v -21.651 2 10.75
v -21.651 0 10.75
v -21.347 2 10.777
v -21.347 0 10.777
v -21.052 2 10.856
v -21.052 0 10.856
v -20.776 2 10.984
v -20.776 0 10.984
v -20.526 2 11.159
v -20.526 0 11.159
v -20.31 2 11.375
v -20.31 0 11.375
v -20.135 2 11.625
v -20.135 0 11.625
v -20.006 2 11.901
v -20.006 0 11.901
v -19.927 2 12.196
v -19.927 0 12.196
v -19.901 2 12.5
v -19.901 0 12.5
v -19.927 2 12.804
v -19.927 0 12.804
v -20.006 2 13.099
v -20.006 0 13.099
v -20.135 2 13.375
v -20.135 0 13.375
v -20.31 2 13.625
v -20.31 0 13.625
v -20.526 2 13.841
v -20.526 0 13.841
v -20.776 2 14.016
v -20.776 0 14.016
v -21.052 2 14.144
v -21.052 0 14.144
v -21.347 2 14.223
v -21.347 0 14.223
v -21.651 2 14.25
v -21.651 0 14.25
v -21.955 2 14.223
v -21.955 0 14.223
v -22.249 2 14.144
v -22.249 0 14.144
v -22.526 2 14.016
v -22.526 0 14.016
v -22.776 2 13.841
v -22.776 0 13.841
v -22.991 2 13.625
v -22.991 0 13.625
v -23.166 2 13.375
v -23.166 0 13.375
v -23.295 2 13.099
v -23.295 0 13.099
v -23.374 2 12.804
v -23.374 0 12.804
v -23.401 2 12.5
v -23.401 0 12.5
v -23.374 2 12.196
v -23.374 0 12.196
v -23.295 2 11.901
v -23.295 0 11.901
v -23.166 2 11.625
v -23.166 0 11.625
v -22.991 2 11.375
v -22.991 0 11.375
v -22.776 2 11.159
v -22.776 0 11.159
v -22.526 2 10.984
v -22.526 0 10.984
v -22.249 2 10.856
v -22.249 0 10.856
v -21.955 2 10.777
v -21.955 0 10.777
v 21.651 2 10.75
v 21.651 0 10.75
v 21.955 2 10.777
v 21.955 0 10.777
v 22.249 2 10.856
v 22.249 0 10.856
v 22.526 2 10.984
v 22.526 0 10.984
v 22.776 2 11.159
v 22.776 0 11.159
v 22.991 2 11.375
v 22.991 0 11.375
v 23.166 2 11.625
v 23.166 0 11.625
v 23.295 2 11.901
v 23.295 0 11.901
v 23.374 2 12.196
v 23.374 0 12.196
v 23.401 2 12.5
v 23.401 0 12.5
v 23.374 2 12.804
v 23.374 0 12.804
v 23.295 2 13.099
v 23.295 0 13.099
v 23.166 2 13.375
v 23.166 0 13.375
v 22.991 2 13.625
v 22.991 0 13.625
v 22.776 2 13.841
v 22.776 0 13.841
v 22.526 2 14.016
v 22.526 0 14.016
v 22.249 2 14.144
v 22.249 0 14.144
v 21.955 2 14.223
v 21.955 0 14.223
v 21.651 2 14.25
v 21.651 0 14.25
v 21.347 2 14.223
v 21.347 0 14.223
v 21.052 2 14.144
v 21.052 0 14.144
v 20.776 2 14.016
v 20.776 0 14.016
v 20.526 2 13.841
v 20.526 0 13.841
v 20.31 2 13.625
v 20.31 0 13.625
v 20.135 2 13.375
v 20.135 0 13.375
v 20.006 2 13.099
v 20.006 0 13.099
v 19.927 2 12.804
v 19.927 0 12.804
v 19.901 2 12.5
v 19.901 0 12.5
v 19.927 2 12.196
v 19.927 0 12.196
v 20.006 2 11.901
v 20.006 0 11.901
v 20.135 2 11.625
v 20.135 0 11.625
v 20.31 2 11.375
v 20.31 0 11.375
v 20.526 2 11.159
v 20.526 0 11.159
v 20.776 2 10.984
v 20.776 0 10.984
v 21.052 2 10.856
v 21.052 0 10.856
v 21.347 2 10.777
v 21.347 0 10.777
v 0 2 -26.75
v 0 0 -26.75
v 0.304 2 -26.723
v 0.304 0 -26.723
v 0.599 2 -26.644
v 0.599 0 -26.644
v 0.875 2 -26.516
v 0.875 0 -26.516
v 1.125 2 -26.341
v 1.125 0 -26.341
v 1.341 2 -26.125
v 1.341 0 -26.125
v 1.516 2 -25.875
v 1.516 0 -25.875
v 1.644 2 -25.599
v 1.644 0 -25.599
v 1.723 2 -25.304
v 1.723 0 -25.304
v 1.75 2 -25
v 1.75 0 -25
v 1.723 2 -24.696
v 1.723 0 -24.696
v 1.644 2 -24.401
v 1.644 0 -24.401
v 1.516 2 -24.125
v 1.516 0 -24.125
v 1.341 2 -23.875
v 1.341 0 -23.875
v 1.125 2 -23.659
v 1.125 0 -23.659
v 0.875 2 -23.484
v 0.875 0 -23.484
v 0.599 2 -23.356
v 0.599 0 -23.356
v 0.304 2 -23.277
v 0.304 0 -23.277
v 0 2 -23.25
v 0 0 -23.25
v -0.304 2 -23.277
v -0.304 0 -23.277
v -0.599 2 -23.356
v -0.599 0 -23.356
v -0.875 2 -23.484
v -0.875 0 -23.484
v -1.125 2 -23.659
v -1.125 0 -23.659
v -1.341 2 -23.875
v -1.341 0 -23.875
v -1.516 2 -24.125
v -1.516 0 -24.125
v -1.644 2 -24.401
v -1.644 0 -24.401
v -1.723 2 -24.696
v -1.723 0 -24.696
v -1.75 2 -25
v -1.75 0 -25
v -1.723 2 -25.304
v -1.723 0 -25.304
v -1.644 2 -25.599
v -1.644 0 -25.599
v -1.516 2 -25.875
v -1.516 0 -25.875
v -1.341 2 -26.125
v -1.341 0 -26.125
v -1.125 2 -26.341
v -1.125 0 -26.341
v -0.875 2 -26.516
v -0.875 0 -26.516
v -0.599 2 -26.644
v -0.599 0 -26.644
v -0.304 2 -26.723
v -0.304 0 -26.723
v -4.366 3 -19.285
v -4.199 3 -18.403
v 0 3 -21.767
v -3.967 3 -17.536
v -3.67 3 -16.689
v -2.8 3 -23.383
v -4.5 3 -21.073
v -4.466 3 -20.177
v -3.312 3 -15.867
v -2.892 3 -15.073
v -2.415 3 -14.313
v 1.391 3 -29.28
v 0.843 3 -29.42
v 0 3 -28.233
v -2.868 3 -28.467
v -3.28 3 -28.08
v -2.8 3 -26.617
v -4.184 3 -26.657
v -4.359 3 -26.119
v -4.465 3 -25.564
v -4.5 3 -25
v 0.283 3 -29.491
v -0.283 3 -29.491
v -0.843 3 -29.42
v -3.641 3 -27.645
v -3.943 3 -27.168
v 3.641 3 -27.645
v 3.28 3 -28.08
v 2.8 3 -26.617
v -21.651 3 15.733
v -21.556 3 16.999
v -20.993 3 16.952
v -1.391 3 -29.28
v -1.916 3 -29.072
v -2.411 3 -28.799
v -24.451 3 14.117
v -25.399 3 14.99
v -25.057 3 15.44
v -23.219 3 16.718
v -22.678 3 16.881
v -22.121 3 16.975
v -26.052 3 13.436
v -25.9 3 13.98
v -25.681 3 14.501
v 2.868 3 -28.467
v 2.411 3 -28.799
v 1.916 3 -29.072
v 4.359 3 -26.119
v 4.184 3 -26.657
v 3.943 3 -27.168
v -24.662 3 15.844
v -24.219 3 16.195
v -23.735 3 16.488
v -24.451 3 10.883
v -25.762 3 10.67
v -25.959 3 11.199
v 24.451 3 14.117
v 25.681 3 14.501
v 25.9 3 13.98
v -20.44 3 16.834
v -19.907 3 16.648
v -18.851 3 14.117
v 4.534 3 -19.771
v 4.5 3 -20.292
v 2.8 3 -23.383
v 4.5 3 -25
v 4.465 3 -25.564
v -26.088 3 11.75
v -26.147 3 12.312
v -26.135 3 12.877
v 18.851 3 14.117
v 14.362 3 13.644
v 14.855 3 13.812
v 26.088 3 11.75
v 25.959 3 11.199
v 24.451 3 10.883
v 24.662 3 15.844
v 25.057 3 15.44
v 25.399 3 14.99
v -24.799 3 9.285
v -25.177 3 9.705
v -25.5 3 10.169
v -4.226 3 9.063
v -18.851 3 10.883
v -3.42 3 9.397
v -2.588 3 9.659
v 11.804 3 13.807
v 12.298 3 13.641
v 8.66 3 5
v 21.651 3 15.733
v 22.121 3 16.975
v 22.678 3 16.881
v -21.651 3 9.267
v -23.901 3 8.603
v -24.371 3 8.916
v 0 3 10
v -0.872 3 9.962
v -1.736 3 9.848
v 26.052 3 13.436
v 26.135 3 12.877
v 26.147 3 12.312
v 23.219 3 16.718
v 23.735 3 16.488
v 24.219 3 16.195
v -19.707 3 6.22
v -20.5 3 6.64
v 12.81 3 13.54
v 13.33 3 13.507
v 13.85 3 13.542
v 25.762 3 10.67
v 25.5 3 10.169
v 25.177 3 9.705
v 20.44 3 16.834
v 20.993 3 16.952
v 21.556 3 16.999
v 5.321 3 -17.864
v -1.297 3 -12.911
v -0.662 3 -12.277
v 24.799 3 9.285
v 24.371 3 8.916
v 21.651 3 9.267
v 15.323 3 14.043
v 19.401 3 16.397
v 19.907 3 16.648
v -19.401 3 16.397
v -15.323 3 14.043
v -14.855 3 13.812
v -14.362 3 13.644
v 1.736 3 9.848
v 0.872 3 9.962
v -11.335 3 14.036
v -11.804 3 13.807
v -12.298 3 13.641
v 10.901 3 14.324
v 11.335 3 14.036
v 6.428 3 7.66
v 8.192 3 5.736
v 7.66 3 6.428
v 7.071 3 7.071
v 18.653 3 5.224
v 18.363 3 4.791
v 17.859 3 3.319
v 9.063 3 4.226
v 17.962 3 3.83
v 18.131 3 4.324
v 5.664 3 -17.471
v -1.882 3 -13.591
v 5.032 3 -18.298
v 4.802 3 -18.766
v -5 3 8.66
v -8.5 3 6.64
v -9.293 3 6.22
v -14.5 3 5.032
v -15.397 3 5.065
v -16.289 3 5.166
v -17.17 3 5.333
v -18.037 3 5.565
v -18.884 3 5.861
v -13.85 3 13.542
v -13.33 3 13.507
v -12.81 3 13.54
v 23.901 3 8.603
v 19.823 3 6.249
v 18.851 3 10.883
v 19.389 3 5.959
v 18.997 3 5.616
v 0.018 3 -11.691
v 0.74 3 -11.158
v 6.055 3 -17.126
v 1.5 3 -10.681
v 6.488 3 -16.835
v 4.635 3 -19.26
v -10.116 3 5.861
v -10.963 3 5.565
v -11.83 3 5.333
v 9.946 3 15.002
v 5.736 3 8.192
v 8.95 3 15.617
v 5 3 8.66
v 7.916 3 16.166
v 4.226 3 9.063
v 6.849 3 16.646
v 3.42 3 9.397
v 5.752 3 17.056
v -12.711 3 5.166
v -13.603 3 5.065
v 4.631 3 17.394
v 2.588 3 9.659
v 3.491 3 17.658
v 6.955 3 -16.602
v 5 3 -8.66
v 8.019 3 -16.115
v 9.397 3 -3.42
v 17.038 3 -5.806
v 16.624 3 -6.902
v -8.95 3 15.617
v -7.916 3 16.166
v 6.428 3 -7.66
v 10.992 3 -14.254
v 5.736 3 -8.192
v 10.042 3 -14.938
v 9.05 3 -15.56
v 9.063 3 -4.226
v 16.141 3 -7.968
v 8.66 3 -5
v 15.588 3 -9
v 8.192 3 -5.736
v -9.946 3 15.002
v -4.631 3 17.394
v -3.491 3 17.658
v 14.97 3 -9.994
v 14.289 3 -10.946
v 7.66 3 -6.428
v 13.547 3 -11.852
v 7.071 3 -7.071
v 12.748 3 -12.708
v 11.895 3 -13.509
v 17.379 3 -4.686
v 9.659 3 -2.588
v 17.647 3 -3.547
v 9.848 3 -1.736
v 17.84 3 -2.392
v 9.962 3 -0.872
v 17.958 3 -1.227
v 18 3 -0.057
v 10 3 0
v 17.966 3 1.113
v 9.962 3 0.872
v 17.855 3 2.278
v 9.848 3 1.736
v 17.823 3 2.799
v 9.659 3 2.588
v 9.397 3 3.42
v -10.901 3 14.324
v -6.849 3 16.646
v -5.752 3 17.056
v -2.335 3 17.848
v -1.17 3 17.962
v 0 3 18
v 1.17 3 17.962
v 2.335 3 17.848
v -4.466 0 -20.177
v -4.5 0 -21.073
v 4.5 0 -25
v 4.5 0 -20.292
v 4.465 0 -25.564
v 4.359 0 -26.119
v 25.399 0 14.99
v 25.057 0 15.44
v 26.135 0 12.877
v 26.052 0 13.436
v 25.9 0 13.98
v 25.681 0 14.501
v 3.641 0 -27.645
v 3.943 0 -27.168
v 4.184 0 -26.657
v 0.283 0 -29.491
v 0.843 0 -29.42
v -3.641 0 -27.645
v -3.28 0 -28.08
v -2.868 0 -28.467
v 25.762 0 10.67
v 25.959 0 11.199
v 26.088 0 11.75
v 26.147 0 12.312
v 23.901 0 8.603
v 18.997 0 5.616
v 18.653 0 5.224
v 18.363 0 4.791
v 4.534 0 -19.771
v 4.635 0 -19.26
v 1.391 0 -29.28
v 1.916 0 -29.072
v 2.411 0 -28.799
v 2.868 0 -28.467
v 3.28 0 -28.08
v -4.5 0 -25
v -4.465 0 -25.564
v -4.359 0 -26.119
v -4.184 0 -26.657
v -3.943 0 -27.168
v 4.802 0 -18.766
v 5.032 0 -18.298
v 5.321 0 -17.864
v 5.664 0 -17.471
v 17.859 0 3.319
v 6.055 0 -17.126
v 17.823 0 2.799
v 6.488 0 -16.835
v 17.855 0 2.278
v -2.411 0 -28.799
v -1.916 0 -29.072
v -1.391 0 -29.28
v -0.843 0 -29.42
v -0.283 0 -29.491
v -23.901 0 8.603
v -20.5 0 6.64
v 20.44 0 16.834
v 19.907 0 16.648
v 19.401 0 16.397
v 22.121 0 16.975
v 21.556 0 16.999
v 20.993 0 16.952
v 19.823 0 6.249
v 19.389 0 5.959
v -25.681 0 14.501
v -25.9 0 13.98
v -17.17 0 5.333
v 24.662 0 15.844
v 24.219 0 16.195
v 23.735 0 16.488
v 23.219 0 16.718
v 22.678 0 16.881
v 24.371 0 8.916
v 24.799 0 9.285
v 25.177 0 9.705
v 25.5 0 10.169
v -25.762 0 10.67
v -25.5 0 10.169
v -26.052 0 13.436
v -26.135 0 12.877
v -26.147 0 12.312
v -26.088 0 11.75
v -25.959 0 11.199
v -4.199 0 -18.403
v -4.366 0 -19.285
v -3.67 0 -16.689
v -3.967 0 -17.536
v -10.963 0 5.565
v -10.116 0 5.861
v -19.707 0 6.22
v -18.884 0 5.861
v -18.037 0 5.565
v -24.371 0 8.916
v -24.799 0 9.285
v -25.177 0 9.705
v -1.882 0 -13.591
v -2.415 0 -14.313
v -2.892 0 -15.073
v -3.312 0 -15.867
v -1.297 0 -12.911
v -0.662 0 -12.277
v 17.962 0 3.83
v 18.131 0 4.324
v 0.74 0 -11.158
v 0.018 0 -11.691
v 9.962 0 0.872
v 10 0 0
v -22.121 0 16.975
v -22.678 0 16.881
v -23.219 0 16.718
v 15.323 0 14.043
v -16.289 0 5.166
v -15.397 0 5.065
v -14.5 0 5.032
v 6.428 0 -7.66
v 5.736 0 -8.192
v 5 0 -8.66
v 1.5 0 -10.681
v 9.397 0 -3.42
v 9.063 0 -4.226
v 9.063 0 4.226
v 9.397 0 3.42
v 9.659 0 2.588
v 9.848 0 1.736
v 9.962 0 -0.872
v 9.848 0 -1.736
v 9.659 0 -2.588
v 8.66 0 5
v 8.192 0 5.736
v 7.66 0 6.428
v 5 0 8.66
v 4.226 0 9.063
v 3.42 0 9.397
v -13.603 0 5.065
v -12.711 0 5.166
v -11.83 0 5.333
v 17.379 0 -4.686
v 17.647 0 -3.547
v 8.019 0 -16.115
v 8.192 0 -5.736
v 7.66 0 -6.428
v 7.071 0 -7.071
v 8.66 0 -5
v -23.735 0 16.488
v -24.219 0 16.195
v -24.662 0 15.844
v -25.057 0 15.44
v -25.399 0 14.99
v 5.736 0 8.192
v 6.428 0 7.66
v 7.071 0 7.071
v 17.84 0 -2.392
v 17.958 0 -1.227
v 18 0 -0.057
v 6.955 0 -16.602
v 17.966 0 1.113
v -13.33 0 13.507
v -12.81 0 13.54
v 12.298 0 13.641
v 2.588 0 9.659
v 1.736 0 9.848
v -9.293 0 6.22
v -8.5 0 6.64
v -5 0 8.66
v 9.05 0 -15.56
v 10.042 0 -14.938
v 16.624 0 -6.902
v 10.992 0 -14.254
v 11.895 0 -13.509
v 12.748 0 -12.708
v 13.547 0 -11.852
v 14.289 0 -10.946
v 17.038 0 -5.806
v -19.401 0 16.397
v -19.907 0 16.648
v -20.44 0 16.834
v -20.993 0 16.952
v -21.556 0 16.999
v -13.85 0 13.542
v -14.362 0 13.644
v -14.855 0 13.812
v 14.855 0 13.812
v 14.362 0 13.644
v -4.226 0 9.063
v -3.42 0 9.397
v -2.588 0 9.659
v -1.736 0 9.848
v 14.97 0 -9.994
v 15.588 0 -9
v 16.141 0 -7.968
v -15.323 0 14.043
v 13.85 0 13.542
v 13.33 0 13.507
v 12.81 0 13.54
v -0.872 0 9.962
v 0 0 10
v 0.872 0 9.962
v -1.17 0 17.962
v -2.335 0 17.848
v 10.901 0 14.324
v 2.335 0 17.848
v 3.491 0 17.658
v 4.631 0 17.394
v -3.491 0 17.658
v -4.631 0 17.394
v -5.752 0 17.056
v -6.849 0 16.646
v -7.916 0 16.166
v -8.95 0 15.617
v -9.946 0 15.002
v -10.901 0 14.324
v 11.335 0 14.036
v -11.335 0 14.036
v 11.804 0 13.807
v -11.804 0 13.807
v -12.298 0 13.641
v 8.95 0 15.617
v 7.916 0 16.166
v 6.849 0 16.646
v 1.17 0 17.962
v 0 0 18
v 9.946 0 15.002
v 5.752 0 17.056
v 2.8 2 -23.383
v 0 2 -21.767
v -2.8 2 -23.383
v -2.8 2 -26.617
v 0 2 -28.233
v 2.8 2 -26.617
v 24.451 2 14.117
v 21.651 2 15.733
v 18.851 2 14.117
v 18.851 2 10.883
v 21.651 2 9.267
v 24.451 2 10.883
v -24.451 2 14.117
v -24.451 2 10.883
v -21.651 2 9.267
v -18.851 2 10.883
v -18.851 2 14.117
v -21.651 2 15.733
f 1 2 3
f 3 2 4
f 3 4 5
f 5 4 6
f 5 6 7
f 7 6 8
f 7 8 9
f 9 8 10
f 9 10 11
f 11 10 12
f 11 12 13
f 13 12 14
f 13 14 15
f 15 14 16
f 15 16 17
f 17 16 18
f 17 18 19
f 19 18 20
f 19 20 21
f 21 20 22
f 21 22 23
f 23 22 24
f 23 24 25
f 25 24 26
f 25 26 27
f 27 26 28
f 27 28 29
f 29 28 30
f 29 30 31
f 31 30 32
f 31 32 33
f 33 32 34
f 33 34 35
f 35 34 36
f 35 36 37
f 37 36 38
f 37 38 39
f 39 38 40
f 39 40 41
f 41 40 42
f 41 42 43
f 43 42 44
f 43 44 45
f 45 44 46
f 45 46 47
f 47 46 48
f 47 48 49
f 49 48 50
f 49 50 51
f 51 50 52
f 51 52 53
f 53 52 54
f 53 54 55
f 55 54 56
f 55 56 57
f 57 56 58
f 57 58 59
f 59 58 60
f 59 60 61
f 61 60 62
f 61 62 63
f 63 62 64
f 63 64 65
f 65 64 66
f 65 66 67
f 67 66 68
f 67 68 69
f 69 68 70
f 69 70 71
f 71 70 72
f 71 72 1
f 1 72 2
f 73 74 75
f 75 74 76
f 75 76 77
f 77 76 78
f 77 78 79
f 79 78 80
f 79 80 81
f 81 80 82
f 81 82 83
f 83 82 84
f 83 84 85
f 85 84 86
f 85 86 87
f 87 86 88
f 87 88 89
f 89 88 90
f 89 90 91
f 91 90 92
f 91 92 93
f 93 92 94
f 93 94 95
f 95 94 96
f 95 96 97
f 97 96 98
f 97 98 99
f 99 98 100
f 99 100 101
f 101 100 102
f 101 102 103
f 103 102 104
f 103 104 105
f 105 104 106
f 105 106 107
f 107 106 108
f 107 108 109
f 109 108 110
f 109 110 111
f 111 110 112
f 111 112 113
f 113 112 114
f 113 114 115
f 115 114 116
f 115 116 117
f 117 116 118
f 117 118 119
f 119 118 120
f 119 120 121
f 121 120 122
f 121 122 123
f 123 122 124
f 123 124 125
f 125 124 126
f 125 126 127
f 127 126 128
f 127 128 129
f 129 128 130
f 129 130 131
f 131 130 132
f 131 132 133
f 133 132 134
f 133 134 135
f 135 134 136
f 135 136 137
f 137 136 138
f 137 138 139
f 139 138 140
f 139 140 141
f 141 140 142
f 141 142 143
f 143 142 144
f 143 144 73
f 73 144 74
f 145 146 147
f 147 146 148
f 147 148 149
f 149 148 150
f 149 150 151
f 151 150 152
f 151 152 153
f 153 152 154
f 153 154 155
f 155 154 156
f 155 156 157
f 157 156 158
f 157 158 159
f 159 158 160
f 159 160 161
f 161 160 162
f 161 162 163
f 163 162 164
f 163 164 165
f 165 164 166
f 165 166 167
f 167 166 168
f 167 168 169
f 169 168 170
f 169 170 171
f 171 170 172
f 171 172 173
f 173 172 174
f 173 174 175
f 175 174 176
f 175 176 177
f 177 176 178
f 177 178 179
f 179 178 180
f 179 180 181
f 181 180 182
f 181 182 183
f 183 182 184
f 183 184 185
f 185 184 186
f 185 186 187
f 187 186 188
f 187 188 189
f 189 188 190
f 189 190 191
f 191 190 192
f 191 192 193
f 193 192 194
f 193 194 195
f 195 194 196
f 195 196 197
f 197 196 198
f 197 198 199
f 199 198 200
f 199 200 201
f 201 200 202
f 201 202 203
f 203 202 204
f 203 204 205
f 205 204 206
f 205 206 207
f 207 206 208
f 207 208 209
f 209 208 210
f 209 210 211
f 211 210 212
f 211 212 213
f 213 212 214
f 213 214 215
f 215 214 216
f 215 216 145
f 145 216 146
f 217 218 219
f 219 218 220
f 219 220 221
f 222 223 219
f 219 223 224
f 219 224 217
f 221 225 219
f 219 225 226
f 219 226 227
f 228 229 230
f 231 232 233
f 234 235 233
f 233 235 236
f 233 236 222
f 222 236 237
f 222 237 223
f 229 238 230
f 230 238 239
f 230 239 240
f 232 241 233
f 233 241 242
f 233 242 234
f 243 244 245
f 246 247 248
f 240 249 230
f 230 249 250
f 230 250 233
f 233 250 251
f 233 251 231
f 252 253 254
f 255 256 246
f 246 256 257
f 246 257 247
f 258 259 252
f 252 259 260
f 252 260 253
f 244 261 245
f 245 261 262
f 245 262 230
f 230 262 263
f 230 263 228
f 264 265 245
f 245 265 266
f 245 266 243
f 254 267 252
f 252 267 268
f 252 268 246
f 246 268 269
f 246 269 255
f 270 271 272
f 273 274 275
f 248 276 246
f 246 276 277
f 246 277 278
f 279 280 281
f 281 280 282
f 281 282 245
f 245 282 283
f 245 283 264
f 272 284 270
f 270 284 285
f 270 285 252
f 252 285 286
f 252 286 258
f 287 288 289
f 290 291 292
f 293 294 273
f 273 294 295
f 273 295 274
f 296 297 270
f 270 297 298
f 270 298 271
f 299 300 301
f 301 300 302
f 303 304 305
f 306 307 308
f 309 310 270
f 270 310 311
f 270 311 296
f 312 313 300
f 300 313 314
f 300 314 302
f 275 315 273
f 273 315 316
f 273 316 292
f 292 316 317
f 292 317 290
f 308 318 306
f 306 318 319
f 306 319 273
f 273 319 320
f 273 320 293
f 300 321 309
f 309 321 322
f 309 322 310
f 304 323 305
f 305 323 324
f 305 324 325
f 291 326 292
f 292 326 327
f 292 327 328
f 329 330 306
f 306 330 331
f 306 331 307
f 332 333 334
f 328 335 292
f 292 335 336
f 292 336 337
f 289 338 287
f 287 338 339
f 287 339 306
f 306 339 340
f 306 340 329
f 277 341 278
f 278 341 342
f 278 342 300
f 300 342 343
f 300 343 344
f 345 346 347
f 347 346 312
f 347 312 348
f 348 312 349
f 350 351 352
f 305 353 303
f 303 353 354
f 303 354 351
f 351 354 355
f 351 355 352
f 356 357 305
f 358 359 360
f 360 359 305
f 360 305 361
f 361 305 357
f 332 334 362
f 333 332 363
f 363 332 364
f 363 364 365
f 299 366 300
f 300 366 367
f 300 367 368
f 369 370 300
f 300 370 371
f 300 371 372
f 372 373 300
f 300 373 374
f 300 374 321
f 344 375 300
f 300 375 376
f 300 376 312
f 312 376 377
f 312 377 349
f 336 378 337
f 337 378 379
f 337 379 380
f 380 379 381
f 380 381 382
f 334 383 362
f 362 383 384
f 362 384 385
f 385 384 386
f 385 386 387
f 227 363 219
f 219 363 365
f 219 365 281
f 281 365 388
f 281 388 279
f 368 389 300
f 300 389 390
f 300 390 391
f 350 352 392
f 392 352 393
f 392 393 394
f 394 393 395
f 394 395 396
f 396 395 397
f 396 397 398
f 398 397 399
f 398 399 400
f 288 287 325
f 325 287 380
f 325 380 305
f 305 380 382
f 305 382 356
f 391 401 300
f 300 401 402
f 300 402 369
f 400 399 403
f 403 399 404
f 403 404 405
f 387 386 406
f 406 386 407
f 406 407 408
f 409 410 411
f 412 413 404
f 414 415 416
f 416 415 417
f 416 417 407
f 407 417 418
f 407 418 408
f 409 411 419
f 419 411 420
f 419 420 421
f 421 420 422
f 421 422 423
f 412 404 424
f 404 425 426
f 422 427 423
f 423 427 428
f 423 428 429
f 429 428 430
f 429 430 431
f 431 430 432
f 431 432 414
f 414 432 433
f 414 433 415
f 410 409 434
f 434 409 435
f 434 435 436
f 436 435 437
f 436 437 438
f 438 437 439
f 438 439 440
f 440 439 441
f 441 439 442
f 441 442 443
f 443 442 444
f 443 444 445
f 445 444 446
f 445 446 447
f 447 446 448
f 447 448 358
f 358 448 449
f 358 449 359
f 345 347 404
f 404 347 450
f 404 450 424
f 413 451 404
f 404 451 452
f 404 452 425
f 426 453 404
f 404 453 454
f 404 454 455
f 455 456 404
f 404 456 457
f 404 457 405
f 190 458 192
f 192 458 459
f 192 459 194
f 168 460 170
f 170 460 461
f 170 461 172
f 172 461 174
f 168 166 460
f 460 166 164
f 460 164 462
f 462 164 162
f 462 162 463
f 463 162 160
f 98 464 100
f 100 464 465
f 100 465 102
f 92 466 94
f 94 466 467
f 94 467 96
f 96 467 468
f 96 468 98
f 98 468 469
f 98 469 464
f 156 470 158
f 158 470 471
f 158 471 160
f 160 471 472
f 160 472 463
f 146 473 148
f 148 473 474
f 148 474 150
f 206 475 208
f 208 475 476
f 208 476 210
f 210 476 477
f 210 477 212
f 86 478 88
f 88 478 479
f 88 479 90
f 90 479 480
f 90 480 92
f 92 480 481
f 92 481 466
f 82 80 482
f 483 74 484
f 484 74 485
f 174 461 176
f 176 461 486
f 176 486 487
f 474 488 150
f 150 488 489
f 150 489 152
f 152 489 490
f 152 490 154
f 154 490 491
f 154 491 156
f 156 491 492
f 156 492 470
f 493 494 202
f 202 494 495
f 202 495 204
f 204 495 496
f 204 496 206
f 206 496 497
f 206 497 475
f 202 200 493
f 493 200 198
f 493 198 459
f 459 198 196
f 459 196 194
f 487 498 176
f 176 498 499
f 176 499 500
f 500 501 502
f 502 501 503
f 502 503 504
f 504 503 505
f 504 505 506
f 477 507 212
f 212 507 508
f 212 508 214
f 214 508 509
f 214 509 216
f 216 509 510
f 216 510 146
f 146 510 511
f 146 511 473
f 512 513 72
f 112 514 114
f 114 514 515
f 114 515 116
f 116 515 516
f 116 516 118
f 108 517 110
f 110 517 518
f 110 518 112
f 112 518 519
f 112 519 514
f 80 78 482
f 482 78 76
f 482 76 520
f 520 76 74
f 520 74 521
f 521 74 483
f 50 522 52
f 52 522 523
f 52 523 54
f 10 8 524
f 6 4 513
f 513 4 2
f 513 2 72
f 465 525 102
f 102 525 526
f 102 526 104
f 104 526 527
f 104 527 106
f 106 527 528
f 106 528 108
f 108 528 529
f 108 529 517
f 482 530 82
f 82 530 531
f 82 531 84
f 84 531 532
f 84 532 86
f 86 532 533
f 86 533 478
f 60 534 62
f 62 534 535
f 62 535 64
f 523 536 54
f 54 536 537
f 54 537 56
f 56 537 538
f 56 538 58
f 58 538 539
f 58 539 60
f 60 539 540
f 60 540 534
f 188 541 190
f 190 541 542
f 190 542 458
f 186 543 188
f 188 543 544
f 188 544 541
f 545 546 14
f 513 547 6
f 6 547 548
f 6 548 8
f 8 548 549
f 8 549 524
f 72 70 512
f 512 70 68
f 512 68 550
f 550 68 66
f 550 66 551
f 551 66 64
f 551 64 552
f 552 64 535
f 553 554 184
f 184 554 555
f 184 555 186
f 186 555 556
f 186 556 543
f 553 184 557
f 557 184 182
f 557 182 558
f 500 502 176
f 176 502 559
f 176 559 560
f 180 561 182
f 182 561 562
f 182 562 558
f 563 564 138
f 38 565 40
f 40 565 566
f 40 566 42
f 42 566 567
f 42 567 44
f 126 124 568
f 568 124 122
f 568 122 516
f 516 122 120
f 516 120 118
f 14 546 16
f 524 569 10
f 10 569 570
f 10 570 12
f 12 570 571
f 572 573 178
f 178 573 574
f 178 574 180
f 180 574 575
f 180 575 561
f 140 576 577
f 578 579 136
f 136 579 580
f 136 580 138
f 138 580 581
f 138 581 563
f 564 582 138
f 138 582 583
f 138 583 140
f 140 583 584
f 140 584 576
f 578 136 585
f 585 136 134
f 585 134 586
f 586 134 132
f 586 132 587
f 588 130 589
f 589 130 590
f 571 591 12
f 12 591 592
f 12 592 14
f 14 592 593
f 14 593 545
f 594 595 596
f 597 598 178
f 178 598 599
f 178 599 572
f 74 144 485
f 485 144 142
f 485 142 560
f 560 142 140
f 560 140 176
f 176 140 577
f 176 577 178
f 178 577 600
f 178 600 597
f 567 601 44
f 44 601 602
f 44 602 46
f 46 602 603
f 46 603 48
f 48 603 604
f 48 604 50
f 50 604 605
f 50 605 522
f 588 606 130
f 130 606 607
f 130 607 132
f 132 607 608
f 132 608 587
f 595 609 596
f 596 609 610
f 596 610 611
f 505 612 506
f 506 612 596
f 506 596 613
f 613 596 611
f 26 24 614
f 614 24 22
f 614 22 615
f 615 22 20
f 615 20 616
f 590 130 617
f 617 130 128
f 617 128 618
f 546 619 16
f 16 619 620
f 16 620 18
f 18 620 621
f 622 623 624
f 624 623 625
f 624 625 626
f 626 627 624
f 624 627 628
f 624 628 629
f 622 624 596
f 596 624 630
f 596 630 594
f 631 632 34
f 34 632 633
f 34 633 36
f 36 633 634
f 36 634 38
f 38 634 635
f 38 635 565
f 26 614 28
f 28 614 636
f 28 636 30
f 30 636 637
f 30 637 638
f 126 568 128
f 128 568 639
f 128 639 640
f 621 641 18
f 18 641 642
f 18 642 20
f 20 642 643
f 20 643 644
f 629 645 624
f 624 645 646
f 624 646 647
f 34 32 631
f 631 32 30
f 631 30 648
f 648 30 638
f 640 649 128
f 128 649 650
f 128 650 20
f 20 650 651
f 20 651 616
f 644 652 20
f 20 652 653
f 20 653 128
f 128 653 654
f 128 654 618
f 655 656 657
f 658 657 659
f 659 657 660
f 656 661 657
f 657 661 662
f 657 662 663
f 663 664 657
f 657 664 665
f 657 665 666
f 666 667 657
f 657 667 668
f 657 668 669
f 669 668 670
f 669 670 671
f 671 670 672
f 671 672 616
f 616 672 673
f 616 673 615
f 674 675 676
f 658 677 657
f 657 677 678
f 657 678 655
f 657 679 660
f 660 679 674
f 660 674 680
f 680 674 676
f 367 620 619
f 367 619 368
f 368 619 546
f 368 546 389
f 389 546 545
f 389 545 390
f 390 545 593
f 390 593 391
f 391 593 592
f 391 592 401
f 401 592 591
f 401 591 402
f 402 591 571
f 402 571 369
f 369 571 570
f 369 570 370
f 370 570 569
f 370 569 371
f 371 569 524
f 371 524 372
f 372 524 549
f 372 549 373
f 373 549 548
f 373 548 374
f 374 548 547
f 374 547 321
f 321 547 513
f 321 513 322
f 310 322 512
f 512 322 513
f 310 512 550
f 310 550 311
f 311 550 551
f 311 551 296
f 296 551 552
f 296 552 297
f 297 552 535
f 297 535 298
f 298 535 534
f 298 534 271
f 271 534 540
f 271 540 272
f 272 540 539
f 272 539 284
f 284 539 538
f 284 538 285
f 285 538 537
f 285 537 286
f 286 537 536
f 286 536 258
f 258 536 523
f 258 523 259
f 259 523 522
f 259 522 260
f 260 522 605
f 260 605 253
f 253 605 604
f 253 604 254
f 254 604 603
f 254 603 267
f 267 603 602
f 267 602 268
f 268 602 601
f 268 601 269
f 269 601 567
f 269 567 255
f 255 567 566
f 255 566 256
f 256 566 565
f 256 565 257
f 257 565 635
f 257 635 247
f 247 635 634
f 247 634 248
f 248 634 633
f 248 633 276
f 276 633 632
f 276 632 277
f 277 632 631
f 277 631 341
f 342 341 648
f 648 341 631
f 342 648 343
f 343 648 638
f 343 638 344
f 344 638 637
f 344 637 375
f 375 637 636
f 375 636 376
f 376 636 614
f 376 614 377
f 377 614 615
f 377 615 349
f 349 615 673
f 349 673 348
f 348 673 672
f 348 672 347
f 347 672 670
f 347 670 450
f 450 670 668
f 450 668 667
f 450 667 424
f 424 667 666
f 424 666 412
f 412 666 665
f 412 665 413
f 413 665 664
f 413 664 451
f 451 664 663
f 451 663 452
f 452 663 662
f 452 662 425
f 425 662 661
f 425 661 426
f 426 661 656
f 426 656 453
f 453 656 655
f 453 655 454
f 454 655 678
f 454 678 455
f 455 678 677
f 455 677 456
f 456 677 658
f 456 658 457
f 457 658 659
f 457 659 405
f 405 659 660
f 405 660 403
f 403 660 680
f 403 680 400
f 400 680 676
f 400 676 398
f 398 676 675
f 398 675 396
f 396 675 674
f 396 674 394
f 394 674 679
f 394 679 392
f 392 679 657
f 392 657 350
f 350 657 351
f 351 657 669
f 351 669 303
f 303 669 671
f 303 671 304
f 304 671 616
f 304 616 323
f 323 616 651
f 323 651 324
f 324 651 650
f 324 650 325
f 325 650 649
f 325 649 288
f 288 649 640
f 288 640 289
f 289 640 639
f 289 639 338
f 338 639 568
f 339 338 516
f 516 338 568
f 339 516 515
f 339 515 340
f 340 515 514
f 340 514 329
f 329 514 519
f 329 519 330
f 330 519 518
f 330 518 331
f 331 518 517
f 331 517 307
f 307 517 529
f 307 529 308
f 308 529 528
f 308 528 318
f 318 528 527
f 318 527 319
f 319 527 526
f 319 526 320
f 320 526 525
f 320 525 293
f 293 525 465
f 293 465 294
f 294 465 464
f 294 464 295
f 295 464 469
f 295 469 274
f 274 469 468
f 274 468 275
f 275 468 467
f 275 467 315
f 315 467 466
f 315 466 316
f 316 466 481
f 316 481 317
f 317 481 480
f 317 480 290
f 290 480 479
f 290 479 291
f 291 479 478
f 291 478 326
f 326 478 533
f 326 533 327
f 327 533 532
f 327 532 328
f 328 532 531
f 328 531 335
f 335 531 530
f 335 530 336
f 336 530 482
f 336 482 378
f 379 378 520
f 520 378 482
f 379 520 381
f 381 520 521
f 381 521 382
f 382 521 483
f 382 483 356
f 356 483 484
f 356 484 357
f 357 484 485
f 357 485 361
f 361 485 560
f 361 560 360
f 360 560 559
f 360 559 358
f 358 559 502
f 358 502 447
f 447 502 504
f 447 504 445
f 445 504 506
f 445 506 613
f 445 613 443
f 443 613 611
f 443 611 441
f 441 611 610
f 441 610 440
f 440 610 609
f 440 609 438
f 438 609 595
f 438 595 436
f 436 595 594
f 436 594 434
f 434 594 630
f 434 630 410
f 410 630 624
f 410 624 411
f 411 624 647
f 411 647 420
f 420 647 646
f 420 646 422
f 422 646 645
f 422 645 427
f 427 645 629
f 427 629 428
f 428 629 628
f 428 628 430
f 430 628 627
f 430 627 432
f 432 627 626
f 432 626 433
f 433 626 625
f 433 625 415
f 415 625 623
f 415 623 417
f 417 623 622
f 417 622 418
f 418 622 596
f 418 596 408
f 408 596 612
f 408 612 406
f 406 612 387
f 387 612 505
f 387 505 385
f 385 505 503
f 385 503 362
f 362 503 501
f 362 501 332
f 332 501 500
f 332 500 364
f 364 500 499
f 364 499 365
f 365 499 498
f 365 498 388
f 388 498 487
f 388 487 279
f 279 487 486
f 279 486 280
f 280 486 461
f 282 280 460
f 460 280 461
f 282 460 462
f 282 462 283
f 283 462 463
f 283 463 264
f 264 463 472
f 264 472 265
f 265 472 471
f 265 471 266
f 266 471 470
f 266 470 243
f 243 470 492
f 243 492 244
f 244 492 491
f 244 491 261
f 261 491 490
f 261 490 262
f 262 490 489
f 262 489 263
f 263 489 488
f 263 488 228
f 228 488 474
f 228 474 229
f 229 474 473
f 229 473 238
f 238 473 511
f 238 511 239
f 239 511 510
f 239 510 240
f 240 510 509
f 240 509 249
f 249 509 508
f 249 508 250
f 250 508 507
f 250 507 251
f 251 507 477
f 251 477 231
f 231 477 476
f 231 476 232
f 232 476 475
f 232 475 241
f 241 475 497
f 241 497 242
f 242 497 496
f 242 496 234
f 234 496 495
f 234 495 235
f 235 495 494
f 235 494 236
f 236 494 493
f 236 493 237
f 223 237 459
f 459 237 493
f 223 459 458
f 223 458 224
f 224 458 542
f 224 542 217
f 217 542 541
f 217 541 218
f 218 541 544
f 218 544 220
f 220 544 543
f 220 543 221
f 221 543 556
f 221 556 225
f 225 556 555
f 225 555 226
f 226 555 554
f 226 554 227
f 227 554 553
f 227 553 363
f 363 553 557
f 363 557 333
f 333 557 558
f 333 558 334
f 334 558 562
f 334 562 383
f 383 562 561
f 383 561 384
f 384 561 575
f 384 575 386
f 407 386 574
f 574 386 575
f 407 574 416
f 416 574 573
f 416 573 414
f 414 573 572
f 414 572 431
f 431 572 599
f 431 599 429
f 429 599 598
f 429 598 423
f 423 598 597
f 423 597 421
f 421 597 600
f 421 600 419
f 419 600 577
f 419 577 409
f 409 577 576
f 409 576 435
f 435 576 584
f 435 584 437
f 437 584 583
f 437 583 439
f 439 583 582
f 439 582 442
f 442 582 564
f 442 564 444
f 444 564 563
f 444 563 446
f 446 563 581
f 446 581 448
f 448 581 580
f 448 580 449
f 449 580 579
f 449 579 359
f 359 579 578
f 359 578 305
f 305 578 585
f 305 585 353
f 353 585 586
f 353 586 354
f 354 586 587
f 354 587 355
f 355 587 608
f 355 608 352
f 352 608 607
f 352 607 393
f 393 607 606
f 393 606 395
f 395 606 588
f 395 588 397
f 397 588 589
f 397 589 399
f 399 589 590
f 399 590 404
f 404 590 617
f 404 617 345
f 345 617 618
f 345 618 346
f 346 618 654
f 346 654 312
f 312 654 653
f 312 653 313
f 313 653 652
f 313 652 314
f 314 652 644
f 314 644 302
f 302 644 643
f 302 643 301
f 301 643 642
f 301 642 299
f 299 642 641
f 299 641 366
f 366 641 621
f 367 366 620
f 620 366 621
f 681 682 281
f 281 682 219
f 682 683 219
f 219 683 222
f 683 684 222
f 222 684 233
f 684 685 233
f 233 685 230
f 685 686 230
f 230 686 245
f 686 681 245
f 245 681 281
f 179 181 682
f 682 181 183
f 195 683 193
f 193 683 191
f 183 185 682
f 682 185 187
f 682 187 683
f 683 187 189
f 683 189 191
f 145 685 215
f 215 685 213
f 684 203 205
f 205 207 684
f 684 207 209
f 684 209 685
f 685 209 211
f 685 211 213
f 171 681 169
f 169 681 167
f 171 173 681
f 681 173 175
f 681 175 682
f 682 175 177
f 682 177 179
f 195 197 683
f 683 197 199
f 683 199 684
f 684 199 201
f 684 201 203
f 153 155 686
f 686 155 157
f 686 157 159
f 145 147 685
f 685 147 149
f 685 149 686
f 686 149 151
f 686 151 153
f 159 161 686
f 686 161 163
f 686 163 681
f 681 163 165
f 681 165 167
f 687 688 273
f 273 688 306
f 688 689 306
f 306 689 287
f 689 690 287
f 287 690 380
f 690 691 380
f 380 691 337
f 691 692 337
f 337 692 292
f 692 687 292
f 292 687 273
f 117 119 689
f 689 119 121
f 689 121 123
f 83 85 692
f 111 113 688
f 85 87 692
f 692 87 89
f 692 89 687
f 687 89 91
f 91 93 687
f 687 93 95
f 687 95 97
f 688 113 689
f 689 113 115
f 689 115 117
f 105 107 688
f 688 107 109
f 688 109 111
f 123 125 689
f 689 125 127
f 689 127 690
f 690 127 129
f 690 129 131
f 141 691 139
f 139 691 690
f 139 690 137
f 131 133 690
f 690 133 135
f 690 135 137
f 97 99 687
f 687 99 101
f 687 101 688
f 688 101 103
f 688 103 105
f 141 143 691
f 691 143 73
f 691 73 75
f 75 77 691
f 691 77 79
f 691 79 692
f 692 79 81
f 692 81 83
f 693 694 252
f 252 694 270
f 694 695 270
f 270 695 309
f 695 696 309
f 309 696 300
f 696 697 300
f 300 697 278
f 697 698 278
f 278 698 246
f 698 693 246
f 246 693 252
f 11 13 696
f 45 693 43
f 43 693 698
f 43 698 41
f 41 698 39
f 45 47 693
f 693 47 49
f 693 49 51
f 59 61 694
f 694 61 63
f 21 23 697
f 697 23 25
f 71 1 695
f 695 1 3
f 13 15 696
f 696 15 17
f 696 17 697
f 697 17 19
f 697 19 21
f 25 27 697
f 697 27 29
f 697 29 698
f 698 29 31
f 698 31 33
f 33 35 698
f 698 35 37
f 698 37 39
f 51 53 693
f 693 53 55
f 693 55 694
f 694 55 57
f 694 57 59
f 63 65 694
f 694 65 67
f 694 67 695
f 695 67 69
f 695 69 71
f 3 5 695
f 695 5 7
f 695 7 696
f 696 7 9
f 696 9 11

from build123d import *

# Parameters (mm, degrees)
SKETCH1_R           = 1.75
BOSS_EXTRUDE1_DEPTH = 3
CUT_EXTRUDE1_DEPTH  = 1


with BuildPart() as part:
    # Sketch1 → Boss-Extrude1 (new body)
    with BuildSketch(Plane(origin=(0, 0, 0), x_dir=(1, 0, 0), z_dir=(0, 1, 0))):
        with BuildLine():
            Line((23.900635095, -8.602885683), (19.823061771, -6.248697627))
            ThreePointArc((19.823061771, -6.248697627), (18.239104498, -4.560898425), (17.855232358, -2.278305828))
            ThreePointArc((17.855232358, -2.278305828), (15.588457268, 9), (6.954545455, 16.602237726))
            ThreePointArc((6.954545455, 16.602237726), (5.169698348, 18.07597705), (4.5, 20.291623888))
            Line((4.5, 20.291623888), (4.5, 25))
            ThreePointArc((4.5, 25), (0, 29.5), (-4.5, 25))
            Line((-4.5, 25), (-4.5, 21.073284825))
            ThreePointArc((-4.5, 21.073284825), (-2.892304845, 15.073284825), (1.5, 10.68097998))
            Line((1.5, 10.68097998), (5, 8.660254038))
            ThreePointArc((5, 8.660254038), (8.660254038, -5), (-5, -8.660254038))
            Line((-5, -8.660254038), (-8.5, -6.639528096))
            ThreePointArc((-8.5, -6.639528096), (-14.5, -5.031832941), (-20.5, -6.639528096))
            Line((-20.5, -6.639528096), (-23.900635095, -8.602885683))
            ThreePointArc((-23.900635095, -8.602885683), (-25.547749412, -14.75), (-19.400635095, -16.397114317))
            Line((-19.400635095, -16.397114317), (-15.323061771, -14.042926261))
            ThreePointArc((-15.323061771, -14.042926261), (-13.069406149, -13.515078625), (-10.900686903, -14.323931899))
            ThreePointArc((-10.900686903, -14.323931899), (0, -18), (10.900686903, -14.323931899))
            ThreePointArc((10.900686903, -14.323931899), (13.069406149, -13.515078625), (15.323061771, -14.042926261))
            Line((15.323061771, -14.042926261), (19.400635095, -16.397114317))
            ThreePointArc((19.400635095, -16.397114317), (25.547749412, -14.75), (23.900635095, -8.602885683))
        make_face()
        with Locations((0, 25)):
            Circle(SKETCH1_R, mode=Mode.SUBTRACT)
        with Locations((21.650635095, -12.5)):
            Circle(SKETCH1_R, mode=Mode.SUBTRACT)
        with Locations((-21.650635095, -12.5)):
            Circle(SKETCH1_R, mode=Mode.SUBTRACT)
    extrude(amount=BOSS_EXTRUDE1_DEPTH)

    # Sketch2 → Cut-Extrude1 (cut)
    with BuildSketch(Plane(origin=(0, 3, 0), x_dir=(1, 0, 0), z_dir=(0, 1, 0))):
        Polygon((2.8, 23.383419246), (2.8, 26.616580754), (0, 28.233161507), (-2.8, 26.616580754), (-2.8, 23.383419246), (0, 21.766838493), align=None)
        Polygon((24.450635095, -14.116580754), (24.450635095, -10.883419246), (21.650635095, -9.266838493), (18.850635095, -10.883419246), (18.850635095, -14.116580754), (21.650635095, -15.733161507), align=None)
        Polygon((-24.450635095, -14.116580754), (-21.650635095, -15.733161507), (-18.850635095, -14.116580754), (-18.850635095, -10.883419246), (-21.650635095, -9.266838493), (-24.450635095, -10.883419246), align=None)
    extrude(amount=-CUT_EXTRUDE1_DEPTH, mode=Mode.SUBTRACT)


solid = part.part
